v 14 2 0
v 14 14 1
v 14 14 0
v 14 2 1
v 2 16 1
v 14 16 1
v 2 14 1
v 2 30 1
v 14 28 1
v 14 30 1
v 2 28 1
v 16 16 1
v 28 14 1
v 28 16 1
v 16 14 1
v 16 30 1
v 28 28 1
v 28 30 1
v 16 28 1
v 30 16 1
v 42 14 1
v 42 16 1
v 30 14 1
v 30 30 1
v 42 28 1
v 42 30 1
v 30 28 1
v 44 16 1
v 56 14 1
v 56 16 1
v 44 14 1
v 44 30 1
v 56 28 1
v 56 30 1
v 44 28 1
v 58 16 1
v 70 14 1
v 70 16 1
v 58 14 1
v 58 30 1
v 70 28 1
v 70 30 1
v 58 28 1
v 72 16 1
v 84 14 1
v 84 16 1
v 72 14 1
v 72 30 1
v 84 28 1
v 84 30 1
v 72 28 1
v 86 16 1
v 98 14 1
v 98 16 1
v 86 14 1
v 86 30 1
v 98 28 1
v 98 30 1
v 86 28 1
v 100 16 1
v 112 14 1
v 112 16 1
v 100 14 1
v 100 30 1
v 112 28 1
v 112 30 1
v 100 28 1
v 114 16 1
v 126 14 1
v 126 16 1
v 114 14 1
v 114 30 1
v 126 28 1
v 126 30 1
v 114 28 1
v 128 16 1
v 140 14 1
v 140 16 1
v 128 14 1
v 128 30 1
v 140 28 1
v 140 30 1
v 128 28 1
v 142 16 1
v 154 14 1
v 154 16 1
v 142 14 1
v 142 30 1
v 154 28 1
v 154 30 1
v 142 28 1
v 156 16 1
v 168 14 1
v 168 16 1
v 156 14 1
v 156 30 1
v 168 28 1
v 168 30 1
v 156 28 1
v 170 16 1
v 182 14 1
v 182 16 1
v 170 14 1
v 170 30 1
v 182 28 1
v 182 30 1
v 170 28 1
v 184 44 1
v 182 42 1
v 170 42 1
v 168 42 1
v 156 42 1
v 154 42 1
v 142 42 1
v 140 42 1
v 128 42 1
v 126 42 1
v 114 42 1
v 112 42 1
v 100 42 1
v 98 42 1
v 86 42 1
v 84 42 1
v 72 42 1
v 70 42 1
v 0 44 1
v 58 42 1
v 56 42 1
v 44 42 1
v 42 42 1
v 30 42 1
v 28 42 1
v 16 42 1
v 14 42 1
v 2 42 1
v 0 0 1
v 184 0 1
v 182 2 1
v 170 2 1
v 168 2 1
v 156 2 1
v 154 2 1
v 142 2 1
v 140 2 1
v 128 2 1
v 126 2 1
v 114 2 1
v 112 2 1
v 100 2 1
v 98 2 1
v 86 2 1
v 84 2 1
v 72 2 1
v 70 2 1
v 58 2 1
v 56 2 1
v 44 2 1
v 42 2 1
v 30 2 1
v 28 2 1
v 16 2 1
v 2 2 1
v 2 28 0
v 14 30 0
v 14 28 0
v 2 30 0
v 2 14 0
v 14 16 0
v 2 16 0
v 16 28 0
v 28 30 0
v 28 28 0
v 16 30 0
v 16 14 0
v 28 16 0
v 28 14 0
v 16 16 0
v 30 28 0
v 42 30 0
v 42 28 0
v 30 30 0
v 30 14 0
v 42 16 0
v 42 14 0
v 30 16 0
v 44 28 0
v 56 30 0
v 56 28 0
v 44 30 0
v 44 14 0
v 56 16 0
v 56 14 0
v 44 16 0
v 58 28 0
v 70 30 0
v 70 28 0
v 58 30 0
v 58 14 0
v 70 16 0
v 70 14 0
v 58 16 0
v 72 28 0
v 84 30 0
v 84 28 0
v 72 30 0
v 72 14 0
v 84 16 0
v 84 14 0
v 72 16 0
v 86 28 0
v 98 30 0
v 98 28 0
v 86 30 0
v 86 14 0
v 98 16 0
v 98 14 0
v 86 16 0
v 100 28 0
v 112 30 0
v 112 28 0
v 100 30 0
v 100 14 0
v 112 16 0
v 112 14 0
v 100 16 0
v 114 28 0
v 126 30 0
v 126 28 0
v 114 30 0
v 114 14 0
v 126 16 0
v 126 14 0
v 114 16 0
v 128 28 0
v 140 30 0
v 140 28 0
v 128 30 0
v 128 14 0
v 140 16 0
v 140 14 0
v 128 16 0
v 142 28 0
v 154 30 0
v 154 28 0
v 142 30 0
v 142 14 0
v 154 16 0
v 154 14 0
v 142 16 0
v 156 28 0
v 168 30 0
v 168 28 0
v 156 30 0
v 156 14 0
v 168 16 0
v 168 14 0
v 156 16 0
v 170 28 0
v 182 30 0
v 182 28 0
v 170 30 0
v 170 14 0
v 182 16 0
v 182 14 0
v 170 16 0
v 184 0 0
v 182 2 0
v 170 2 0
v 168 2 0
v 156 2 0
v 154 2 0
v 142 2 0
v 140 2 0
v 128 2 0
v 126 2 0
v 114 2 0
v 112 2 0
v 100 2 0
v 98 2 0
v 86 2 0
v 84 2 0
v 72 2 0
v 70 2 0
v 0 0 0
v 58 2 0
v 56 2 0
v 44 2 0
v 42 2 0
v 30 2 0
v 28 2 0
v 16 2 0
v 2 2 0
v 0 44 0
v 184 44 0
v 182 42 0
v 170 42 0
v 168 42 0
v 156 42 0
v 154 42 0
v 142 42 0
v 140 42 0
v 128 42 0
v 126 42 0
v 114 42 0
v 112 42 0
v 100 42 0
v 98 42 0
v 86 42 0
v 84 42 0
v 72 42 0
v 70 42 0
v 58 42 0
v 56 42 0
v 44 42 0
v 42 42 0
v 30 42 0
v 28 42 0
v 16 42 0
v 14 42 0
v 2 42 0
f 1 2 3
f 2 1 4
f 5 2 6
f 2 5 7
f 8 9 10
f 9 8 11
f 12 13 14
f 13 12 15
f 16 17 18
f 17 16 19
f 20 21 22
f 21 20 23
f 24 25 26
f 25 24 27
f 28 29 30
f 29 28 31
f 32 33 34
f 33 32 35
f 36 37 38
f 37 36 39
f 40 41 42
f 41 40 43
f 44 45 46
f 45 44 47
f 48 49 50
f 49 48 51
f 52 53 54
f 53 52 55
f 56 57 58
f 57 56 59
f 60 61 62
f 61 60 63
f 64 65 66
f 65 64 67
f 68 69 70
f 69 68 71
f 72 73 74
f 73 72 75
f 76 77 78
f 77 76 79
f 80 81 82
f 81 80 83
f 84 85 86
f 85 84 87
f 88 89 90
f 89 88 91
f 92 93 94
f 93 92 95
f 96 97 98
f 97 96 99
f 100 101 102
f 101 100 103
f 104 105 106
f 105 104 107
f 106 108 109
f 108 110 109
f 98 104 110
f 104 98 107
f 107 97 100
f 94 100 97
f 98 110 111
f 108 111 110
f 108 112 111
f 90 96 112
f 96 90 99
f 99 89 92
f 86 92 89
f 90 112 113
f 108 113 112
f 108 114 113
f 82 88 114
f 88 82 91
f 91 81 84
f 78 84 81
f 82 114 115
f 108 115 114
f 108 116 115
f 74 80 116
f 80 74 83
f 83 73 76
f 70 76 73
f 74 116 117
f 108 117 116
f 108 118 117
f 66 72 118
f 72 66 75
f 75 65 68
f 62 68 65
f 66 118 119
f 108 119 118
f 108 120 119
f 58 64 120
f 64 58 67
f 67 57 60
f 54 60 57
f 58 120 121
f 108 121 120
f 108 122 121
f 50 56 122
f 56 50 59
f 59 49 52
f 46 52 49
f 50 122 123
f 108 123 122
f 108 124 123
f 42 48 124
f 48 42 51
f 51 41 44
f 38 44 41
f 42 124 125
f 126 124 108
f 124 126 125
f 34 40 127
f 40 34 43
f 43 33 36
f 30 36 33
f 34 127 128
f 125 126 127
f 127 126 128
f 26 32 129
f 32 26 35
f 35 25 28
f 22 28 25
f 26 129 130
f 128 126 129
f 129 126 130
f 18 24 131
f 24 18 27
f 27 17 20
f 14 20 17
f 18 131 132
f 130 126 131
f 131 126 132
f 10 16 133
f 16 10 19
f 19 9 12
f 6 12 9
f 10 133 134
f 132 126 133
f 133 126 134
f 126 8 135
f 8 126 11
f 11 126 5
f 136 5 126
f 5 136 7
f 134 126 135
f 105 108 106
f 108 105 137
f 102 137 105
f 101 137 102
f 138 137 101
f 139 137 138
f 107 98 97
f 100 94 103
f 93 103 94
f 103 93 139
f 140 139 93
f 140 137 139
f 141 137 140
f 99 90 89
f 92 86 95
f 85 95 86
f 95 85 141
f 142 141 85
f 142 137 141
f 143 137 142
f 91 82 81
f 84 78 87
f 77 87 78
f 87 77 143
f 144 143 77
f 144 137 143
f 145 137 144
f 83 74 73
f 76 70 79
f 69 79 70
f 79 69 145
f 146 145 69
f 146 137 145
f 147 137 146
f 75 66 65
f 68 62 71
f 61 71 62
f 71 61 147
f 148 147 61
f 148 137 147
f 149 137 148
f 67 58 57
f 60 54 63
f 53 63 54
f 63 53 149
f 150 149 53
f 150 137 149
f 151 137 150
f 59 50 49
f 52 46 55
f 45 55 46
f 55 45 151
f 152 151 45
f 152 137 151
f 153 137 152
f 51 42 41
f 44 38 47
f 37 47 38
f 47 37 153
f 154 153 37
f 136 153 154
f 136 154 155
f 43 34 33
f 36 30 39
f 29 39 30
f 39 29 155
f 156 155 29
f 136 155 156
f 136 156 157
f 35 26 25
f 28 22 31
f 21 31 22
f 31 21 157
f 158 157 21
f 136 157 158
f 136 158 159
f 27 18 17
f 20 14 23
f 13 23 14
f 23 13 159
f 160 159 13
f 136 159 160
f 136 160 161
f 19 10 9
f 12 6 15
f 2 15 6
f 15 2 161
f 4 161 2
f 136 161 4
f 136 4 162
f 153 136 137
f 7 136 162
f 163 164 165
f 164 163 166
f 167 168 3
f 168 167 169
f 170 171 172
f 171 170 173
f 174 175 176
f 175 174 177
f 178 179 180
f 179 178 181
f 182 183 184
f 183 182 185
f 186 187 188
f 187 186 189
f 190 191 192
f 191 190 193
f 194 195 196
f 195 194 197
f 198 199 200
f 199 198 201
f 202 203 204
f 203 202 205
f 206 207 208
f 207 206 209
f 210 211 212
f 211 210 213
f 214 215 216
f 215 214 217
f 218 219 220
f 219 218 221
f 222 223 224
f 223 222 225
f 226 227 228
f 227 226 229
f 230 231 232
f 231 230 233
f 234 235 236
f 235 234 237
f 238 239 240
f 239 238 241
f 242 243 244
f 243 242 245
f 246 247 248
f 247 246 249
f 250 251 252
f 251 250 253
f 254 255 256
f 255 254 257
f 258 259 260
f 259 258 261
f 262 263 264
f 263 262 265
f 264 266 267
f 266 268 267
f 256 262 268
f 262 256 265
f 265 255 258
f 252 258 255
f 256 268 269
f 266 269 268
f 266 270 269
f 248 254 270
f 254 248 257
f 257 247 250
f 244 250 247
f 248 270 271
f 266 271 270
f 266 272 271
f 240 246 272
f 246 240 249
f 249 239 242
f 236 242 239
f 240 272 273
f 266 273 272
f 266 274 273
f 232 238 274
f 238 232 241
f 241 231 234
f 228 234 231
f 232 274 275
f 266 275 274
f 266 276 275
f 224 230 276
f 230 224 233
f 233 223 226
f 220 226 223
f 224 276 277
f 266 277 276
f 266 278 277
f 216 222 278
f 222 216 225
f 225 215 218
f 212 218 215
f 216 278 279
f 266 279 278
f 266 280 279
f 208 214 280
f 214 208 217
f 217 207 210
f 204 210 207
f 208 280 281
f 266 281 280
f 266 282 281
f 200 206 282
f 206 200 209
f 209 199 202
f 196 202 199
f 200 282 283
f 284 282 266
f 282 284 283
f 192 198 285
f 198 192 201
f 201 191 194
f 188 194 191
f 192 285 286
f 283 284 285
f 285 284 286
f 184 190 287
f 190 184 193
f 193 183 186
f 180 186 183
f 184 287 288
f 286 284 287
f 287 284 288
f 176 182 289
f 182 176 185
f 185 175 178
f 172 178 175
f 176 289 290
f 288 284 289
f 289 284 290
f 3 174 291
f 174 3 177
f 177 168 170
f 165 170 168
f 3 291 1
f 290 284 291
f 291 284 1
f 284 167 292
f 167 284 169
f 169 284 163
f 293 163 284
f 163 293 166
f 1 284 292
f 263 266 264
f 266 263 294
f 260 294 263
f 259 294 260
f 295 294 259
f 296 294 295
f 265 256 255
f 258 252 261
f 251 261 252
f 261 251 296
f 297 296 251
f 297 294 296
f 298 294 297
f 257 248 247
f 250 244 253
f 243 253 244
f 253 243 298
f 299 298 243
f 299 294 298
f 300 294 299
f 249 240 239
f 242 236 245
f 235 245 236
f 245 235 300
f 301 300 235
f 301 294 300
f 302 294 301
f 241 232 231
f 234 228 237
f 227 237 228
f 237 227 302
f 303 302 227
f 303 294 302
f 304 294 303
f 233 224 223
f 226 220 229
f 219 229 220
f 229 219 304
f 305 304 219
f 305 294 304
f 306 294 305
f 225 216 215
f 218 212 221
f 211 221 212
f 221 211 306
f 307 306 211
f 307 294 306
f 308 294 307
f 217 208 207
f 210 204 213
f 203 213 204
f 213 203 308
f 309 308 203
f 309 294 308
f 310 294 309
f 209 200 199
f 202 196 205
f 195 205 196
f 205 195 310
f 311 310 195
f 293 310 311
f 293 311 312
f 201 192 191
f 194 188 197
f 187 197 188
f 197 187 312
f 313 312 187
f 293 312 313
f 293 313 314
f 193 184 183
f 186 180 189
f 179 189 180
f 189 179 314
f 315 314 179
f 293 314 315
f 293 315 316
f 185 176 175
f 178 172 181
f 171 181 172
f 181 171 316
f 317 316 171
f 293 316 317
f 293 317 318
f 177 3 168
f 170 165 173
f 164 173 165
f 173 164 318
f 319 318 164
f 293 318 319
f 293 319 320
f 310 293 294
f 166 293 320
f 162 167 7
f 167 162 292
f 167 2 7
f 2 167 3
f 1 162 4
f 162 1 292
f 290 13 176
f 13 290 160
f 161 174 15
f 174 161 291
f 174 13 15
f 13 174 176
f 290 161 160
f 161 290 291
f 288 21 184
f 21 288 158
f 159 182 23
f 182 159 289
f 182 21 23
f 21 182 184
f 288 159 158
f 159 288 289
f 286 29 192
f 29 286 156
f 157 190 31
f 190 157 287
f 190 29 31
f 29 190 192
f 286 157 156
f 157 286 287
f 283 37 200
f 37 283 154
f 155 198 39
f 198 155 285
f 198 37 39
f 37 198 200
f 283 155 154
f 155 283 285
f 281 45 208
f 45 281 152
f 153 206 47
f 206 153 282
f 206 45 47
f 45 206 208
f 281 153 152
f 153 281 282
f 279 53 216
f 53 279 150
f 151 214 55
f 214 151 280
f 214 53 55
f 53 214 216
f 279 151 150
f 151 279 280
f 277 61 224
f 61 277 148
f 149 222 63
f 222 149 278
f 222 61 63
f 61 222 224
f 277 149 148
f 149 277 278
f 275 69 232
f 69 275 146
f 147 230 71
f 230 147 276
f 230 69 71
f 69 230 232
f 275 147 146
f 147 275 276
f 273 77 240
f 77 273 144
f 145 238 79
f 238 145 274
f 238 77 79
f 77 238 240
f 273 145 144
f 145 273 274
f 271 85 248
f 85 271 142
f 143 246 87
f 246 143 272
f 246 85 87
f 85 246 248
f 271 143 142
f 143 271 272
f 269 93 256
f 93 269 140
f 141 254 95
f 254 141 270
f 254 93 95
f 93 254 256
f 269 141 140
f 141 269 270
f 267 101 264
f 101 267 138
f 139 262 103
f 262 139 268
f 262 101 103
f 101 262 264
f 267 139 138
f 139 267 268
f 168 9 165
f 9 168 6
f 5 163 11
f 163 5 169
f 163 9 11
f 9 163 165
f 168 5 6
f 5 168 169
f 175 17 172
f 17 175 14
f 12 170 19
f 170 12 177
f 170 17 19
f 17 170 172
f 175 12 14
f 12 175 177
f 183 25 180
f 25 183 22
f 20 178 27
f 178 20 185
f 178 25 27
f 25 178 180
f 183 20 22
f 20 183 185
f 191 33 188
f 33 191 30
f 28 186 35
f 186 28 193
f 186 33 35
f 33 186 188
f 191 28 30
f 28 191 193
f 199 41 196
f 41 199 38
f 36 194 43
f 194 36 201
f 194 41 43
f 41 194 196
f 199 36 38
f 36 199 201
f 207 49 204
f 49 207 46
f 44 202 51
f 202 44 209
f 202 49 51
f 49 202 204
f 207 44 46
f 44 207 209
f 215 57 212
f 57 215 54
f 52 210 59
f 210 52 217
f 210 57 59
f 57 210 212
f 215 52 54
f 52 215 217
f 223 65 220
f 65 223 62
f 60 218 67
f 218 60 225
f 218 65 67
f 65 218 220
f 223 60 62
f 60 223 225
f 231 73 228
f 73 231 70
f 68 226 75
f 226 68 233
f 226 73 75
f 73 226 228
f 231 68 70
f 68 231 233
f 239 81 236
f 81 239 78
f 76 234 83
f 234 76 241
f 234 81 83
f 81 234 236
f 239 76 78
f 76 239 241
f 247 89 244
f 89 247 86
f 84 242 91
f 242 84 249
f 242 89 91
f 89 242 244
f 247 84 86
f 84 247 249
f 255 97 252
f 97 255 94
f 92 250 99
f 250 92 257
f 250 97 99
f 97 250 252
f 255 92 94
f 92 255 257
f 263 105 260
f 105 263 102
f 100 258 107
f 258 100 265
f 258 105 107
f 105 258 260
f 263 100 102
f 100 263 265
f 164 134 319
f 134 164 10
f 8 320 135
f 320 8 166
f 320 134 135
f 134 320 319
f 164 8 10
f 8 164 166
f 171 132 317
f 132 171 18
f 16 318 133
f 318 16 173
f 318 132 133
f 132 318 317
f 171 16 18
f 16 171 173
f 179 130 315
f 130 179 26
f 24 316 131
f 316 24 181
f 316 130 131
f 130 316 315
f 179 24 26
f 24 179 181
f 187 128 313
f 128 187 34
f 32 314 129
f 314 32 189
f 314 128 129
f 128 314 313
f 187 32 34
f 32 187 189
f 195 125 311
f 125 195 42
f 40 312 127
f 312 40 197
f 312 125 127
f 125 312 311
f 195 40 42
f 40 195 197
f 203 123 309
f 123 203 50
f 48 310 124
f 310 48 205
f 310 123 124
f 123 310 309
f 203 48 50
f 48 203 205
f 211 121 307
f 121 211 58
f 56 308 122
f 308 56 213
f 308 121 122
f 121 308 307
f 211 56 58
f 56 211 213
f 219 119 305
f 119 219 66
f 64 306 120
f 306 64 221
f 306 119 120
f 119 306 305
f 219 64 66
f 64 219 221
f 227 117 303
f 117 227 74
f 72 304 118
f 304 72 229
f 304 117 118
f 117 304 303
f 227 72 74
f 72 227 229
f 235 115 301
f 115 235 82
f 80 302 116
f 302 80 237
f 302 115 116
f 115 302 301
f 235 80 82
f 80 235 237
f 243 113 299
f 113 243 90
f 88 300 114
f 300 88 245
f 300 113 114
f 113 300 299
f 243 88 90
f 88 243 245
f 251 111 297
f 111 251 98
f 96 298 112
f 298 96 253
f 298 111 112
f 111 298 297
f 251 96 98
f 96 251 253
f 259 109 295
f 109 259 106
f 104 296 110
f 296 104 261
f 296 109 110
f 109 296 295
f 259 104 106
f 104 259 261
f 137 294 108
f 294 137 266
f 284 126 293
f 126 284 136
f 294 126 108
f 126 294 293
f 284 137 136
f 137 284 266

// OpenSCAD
section = 14;
rows = 3;
columns = 13;
height = 1;
wall = 1;
outer_wall = wall * 2;
stamp_hole = section - (2*wall);
floor_thickness = 0;

module stamp_hole(row,col) {
  translate([row*section+wall,col*section+wall,floor_thickness]) {
    cube([stamp_hole,stamp_hole,height]);
  }
}

module outside_of_section() {
 cube([section,section,height]);
}

module inside_of_section() {
  translate([wall,wall,floor_thickness]) {
    cube([stamp_hole,stamp_hole,height]);
  }
}

difference() {
  cube([section*columns+outer_wall,section*rows+outer_wall,height]);
    translate([wall,wall,0]) {
    stamp_hole(0,0);
    stamp_hole(1,0);
    stamp_hole(2,0);
    stamp_hole(3,0);
    stamp_hole(4,0);
    stamp_hole(5,0);
    stamp_hole(6,0);
    stamp_hole(7,0);
    stamp_hole(8,0);
    stamp_hole(9,0);
    stamp_hole(10,0);
    stamp_hole(11,0);
    stamp_hole(12,0);

    stamp_hole(0,1);
    stamp_hole(1,1);
    stamp_hole(2,1);
    stamp_hole(3,1);
    stamp_hole(4,1);
    stamp_hole(5,1);
    stamp_hole(6,1);
    stamp_hole(7,1);
    stamp_hole(8,1);
    stamp_hole(9,1);
    stamp_hole(10,1);
    stamp_hole(11,1);
    stamp_hole(12,1);

    stamp_hole(0,2);
    stamp_hole(1,2);
    stamp_hole(2,2);
    stamp_hole(3,2);
    stamp_hole(4,2);
    stamp_hole(5,2);
    stamp_hole(6,2);
    stamp_hole(7,2);
    stamp_hole(8,2);
    stamp_hole(9,2);
    stamp_hole(10,2);
    stamp_hole(11,2);
    stamp_hole(12,2);
  };
};
